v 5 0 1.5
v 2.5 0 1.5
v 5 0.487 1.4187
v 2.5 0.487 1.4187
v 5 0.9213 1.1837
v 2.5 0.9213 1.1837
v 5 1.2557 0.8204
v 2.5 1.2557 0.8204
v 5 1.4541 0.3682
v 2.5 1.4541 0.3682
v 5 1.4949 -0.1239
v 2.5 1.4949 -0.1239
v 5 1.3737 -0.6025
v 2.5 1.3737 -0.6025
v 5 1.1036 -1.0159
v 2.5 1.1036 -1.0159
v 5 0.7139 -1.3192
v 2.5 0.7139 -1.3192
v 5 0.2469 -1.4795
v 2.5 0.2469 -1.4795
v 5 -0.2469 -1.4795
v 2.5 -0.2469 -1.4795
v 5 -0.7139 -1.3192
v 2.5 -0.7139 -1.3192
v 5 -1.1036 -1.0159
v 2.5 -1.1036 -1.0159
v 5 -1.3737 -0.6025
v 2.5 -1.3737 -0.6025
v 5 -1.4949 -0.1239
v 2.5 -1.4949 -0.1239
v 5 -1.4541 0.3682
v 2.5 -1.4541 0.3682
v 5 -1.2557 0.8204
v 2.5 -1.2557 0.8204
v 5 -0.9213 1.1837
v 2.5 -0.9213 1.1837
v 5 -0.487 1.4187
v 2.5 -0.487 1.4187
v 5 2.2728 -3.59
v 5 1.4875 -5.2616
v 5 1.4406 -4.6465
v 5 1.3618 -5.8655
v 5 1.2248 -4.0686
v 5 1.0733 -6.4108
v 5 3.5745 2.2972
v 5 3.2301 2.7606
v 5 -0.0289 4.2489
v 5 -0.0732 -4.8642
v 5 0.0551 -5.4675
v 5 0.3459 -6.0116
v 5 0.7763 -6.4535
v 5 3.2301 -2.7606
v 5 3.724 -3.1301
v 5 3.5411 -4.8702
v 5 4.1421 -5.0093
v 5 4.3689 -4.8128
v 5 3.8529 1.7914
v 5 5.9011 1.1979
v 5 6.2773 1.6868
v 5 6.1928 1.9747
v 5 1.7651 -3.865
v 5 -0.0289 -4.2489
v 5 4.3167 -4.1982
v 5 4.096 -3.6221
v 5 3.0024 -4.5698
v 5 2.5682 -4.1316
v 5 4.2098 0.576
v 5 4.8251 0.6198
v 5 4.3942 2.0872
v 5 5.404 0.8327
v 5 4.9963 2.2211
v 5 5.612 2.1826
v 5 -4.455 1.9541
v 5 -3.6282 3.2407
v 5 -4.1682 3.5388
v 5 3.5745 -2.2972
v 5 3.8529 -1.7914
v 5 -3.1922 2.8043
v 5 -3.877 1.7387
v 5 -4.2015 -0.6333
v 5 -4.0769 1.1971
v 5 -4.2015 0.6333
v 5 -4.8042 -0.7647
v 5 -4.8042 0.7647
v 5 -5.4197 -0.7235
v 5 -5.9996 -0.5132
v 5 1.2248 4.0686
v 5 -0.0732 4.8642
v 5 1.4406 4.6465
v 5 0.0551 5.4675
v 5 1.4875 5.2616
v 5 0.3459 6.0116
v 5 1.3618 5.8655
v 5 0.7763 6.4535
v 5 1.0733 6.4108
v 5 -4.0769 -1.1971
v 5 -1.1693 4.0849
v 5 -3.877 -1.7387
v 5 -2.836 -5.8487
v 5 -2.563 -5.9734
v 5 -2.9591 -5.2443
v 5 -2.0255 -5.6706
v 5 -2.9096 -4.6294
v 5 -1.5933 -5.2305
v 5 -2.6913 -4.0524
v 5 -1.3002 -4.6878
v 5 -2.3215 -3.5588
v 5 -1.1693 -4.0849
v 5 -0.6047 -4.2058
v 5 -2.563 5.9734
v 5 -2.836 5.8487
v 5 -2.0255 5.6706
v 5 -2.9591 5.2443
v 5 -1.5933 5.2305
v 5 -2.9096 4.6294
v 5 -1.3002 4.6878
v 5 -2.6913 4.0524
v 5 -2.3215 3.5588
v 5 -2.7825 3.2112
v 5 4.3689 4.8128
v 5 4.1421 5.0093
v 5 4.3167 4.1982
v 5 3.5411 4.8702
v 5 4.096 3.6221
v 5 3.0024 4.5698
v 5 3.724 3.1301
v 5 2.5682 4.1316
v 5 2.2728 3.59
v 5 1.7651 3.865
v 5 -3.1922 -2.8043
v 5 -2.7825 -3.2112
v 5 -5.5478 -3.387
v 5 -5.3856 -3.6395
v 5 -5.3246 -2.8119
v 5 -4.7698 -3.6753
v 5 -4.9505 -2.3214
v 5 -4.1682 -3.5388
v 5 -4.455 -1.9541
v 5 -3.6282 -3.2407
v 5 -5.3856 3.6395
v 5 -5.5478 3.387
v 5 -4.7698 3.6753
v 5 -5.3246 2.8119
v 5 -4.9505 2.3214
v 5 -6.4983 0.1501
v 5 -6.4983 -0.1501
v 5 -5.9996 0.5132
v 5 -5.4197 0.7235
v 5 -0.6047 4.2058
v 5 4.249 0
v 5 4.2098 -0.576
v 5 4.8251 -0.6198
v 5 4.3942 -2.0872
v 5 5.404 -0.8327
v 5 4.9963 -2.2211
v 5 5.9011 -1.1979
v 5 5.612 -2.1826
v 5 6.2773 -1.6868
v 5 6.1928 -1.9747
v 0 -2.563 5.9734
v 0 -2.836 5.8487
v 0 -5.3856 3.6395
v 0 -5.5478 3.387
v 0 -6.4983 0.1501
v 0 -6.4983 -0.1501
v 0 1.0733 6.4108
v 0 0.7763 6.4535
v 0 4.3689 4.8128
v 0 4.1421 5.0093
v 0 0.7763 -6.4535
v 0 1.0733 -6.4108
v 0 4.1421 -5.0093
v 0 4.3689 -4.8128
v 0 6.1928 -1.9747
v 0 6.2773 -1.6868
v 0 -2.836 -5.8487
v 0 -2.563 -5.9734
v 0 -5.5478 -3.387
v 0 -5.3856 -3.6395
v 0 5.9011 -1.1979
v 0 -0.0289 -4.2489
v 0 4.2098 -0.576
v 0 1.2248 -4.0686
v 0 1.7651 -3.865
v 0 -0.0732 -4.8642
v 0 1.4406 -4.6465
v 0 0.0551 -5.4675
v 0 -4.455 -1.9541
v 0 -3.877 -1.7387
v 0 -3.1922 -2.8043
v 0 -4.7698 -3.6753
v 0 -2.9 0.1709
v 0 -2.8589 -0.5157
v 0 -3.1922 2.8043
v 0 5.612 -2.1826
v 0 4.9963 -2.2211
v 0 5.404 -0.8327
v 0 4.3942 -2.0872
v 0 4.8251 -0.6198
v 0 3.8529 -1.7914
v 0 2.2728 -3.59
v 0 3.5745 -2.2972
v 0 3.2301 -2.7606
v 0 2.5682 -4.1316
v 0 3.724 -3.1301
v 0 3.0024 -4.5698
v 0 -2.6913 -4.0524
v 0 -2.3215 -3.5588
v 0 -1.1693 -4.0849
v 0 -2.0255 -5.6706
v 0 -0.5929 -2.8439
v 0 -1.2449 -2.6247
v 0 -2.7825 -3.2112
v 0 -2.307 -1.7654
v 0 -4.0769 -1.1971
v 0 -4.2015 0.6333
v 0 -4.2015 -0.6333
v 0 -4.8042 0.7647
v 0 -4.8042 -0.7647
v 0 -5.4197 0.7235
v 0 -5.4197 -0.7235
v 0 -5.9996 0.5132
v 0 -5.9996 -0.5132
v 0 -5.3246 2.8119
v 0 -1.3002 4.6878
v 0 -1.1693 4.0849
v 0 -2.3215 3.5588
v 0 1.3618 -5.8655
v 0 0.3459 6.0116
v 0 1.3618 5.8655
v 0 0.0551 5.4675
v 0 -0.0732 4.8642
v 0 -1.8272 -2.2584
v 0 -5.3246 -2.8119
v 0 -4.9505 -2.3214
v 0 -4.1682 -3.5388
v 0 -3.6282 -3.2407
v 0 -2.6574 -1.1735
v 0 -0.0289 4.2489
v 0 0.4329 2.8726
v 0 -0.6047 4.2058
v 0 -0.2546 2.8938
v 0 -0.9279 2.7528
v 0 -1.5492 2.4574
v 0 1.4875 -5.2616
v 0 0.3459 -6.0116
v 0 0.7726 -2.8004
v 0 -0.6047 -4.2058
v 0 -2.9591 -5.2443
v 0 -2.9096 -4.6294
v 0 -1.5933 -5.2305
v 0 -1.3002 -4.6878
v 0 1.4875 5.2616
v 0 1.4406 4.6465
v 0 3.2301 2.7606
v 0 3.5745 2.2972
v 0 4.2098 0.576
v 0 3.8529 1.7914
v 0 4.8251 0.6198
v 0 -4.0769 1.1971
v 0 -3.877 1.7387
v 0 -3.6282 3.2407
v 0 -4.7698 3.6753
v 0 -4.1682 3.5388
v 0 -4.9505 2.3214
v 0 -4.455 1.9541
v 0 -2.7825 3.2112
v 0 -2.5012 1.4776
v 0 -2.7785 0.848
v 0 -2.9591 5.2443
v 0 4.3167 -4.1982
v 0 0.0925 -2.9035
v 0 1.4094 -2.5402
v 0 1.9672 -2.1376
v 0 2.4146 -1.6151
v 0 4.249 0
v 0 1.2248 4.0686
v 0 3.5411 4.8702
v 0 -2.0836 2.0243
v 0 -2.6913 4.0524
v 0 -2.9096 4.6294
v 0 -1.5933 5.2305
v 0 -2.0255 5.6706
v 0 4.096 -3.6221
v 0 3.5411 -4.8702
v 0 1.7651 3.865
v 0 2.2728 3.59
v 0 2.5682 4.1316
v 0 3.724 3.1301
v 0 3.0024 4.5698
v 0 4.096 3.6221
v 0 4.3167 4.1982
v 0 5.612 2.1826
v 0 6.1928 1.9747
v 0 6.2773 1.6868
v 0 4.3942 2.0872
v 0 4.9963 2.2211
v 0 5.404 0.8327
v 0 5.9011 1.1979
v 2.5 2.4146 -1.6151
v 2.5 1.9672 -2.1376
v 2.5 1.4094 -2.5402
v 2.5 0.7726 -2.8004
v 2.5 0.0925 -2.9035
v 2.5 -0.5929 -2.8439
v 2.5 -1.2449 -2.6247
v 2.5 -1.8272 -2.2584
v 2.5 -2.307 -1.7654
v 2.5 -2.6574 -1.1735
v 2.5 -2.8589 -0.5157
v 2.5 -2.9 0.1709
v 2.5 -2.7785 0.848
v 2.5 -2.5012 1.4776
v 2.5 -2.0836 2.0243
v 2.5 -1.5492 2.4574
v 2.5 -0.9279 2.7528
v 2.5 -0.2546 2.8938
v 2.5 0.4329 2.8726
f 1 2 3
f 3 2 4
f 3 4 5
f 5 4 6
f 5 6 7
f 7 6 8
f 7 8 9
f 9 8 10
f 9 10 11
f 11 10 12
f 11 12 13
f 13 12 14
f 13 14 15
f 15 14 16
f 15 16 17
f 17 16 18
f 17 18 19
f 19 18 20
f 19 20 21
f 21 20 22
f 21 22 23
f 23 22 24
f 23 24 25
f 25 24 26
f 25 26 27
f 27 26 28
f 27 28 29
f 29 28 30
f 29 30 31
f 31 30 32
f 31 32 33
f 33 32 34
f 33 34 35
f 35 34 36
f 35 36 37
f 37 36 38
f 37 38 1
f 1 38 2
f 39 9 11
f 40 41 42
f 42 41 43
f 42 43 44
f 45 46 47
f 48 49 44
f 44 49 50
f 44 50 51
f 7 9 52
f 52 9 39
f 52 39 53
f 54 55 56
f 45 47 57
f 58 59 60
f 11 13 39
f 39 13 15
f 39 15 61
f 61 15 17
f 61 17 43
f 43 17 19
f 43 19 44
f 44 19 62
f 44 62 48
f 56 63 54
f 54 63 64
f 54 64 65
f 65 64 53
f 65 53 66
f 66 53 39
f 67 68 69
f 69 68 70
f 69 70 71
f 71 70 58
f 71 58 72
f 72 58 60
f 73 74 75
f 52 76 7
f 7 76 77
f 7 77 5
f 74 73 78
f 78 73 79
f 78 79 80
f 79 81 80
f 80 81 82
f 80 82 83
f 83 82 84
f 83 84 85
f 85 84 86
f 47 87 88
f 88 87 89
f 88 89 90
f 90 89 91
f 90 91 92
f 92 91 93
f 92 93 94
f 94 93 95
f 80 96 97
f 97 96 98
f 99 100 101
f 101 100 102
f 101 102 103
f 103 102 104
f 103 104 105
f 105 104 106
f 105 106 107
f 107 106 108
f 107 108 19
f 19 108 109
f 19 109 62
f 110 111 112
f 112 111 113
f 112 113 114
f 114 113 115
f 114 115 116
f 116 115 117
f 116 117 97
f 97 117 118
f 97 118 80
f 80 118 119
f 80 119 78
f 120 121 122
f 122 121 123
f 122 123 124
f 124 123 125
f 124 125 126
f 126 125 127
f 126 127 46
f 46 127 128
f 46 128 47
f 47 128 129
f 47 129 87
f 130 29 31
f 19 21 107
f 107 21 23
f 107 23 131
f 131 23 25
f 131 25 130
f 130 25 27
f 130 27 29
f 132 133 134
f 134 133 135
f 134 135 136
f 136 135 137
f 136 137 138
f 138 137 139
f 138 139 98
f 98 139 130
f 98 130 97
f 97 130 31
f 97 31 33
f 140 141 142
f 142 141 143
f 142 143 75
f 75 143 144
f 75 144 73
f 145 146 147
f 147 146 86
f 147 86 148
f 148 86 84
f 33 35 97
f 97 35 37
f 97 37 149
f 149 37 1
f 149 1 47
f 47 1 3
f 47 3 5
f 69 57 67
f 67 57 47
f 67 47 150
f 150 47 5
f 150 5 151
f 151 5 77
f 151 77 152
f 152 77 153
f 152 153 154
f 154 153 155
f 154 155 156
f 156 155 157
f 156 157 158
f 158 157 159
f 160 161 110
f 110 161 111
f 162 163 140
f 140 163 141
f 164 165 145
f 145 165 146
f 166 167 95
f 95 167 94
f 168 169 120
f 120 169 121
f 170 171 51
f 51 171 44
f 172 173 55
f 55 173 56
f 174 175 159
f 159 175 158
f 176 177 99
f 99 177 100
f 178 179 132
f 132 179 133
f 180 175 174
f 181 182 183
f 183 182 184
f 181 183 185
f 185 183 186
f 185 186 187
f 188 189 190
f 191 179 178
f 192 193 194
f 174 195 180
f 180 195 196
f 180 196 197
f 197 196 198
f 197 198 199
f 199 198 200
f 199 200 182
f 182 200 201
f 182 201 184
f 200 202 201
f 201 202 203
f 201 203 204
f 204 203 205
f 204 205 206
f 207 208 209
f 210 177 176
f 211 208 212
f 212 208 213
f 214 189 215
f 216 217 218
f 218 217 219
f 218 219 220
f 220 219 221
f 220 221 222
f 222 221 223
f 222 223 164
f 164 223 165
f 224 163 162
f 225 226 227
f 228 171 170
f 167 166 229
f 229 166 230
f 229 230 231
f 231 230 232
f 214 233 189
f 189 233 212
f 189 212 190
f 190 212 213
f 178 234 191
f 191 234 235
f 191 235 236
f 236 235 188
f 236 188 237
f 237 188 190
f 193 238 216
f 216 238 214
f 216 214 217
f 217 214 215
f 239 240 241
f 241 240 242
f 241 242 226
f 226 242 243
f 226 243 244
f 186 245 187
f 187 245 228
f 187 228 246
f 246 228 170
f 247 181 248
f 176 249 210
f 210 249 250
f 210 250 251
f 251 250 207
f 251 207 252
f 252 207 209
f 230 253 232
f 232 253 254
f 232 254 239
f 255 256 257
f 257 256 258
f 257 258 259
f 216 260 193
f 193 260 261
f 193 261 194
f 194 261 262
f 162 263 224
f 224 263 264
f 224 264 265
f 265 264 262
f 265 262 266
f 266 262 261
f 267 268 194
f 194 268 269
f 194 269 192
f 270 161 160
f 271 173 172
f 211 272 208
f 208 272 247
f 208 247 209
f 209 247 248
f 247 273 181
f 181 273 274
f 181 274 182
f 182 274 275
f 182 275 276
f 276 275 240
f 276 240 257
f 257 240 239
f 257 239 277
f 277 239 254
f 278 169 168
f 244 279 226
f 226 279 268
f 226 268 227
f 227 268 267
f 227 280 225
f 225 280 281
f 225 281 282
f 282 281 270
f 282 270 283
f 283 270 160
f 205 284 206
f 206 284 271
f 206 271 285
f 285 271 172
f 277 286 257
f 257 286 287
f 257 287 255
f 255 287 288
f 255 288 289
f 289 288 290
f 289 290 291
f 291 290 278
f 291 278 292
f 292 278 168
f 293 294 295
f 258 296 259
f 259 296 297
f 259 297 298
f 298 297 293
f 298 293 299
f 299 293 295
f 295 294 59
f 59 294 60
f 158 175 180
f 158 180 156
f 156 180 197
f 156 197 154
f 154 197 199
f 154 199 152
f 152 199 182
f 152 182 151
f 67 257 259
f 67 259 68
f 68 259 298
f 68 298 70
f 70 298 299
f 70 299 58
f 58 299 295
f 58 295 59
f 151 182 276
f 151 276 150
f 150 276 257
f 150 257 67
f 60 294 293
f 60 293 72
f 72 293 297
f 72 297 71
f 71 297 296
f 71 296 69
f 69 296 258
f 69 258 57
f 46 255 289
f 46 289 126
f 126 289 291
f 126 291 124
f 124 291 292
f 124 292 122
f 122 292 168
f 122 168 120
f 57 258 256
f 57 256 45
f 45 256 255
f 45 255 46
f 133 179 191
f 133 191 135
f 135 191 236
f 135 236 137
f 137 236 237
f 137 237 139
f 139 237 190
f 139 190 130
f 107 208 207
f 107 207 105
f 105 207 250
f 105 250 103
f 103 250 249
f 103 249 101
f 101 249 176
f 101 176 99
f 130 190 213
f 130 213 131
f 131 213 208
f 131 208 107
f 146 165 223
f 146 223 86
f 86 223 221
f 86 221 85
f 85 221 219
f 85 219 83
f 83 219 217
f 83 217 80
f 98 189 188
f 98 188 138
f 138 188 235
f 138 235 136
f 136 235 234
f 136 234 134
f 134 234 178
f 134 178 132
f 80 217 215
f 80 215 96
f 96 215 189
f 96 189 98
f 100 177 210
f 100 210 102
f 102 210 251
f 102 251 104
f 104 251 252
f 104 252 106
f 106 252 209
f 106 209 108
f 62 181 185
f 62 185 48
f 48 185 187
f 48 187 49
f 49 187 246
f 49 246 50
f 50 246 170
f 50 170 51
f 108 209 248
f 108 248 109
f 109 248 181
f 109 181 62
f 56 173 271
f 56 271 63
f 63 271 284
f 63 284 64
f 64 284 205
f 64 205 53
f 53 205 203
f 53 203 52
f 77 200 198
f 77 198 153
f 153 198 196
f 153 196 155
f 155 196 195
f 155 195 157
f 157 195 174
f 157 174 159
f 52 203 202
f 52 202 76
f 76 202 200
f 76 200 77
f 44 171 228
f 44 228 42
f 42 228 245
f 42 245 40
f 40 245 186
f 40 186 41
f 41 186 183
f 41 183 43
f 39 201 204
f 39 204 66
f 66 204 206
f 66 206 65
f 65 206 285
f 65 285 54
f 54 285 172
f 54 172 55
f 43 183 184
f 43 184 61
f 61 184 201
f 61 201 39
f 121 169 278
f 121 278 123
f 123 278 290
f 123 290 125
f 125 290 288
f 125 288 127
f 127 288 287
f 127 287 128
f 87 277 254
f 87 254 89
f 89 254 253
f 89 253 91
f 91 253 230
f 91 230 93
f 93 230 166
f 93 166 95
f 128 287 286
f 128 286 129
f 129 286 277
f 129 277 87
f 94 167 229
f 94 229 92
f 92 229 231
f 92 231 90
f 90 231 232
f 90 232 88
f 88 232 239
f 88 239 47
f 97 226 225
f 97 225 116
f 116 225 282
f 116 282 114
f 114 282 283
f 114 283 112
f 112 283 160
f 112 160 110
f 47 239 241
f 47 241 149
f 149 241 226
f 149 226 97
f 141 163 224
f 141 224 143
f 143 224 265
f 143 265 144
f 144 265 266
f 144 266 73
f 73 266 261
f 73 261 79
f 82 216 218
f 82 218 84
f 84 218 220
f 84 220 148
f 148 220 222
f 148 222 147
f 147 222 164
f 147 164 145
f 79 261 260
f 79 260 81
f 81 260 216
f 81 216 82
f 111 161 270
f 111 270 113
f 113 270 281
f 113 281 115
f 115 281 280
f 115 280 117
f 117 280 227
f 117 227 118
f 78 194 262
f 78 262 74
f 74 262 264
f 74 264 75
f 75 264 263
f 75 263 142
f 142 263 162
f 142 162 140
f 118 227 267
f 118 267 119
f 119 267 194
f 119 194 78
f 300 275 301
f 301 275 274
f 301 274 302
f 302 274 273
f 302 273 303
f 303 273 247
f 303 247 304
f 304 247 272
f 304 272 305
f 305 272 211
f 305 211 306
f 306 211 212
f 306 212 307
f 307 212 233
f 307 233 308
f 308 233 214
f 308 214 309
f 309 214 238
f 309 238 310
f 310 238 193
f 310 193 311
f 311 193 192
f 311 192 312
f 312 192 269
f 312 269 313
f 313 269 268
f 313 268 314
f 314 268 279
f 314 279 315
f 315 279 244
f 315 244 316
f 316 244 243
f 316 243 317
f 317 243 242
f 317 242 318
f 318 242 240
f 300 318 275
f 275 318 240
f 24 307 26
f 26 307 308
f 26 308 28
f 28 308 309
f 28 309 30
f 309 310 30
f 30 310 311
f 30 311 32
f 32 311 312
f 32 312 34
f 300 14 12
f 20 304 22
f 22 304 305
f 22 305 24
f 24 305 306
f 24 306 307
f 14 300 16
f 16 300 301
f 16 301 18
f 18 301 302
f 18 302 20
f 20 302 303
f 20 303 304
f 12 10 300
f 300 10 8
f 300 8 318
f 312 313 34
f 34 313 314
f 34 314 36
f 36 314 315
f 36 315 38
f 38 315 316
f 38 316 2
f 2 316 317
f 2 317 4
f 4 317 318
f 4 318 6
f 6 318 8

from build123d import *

# Parameters (mm, degrees)
BASPROSKE_W             = 5
BASPROSKE_H             = 6.5
TOOTHCUT_DEPTH          = 11.464224768
TEETHCUTS_COUNT         = 11
TEETHCUTS_ANGLE         = 327.272727273
BORSKE_R                = 1.5
BORE_DEPTH              = 50.0000508
ESQUISSE1_R             = 2.75
ENL_V_MAT_EXTRU_1_DEPTH = 3
ESQUISSE2_R             = 2.75
ESQUISSE2_R_2           = 1.5
BOSS_EXTRU_1_DEPTH      = 3
ENL_V_MAT_EXTRU_2_DEPTH = 2
BOSS_EXTRU_2_START      = -2
ESQUISSE4_R             = 3.301127001
ESQUISSE4_R_2           = 1.5
BOSS_EXTRU_2_DEPTH      = 2
ENL_V_MAT_EXTRU_3_DEPTH = 2.5


with BuildPart() as part:
    # BasProSke → Base-Revolve (revolve)
    with BuildSketch(Plane(origin=(0, 0, 0), x_dir=(1, 0, 0), z_dir=(0, 1, 0)), mode=Mode.PRIVATE) as base_revolve_sk:
        with Locations((2.5, 3.25)):
            Rectangle(BASPROSKE_W, BASPROSKE_H)
    revolve(base_revolve_sk.sketch.rotate(Axis((-10, 0, 0), (1, 0, 0)), 180), axis=Axis((-10, 0, 0), (1, 0, 0)))

    # TooCutSke → ToothCut (cut, through all)
    with BuildSketch(Plane(origin=(0, 0, 0), x_dir=(0, 0, -1), z_dir=(1, 0, 0))):
        with BuildLine():
            ThreePointArc((0.576045815, 4.209771041), (0, 4.249), (-0.576045815, 4.209771041))
            ThreePointArc((-0.576045815, 4.209771041), (-0.841371334, 5.420048739), (-1.718652745, 6.295004202))
            ThreePointArc((-1.718652745, 6.295004202), (0, 6.5254), (1.718652745, 6.295004202))
            ThreePointArc((1.718652745, 6.295004202), (0.841371334, 5.420048739), (0.576045815, 4.209771041))
        make_face()
    toothcut = extrude(amount=TOOTHCUT_DEPTH, mode=Mode.SUBTRACT)

    # TeethCuts: ToothCut ×11 about axis
    teethcuts_axis = Axis((-10, 0, 0), (1, 0, 0))
    for i in range(1, TEETHCUTS_COUNT):
        add(toothcut.rotate(teethcuts_axis, i * TEETHCUTS_ANGLE / (TEETHCUTS_COUNT - 1)), mode=Mode.SUBTRACT)

    # BorSke → Bore (cut, symmetric)
    with BuildSketch(Plane(origin=(0, 0, 0), x_dir=(0, 0, -1), z_dir=(1, 0, 0))):
        with Locations(Location((0, 0, 0), (0, 0, 180))):
            Circle(BORSKE_R)
    extrude(amount=BORE_DEPTH, both=True, mode=Mode.SUBTRACT)

    # Esquisse1 → Enlèv. mat.-Extru.1 (cut)
    with BuildSketch(Plane.ZY):
        Circle(ESQUISSE1_R)
    extrude(amount=-ENL_V_MAT_EXTRU_1_DEPTH, mode=Mode.SUBTRACT)

    # Esquisse2 → Boss.-Extru.1 (add)
    with BuildSketch(Plane.ZY.offset(-3)):
        Circle(ESQUISSE2_R)
        Circle(ESQUISSE2_R_2, mode=Mode.SUBTRACT)
    extrude(amount=BOSS_EXTRU_1_DEPTH)

    # Esquisse3 → Enlèv. mat.-Extru.2 (cut)
    with BuildSketch(Plane.ZY):
        Polygon((2.381429268, -2.186807713), (3.084545667, 0.968974387), (0.703116398, 3.1557821), (-2.381429268, 2.186807713), (-3.084545667, -0.968974387), (-0.703116398, -3.1557821), align=None)
    extrude(amount=-ENL_V_MAT_EXTRU_2_DEPTH, mode=Mode.SUBTRACT)

    # Esquisse4 → Boss.-Extru.2 (add)
    with BuildSketch(Plane.ZY.offset(BOSS_EXTRU_2_START)):
        Circle(ESQUISSE4_R)
        Circle(ESQUISSE4_R_2, mode=Mode.SUBTRACT)
    extrude(amount=BOSS_EXTRU_2_DEPTH)

    # Esquisse5 → Enlèv. mat.-Extru.3 (cut)
    with BuildSketch(Plane.ZY):
        with BuildLine():
            Line((-1.61510442, 2.41463511), (2.872559283, 0.432929749))
            ThreePointArc((2.872559283, 0.432929749), (-1.173493595, -2.657430673), (-1.61510442, 2.41463511))
        make_face()
    extrude(amount=-ENL_V_MAT_EXTRU_3_DEPTH, mode=Mode.SUBTRACT)


solid = part.part
